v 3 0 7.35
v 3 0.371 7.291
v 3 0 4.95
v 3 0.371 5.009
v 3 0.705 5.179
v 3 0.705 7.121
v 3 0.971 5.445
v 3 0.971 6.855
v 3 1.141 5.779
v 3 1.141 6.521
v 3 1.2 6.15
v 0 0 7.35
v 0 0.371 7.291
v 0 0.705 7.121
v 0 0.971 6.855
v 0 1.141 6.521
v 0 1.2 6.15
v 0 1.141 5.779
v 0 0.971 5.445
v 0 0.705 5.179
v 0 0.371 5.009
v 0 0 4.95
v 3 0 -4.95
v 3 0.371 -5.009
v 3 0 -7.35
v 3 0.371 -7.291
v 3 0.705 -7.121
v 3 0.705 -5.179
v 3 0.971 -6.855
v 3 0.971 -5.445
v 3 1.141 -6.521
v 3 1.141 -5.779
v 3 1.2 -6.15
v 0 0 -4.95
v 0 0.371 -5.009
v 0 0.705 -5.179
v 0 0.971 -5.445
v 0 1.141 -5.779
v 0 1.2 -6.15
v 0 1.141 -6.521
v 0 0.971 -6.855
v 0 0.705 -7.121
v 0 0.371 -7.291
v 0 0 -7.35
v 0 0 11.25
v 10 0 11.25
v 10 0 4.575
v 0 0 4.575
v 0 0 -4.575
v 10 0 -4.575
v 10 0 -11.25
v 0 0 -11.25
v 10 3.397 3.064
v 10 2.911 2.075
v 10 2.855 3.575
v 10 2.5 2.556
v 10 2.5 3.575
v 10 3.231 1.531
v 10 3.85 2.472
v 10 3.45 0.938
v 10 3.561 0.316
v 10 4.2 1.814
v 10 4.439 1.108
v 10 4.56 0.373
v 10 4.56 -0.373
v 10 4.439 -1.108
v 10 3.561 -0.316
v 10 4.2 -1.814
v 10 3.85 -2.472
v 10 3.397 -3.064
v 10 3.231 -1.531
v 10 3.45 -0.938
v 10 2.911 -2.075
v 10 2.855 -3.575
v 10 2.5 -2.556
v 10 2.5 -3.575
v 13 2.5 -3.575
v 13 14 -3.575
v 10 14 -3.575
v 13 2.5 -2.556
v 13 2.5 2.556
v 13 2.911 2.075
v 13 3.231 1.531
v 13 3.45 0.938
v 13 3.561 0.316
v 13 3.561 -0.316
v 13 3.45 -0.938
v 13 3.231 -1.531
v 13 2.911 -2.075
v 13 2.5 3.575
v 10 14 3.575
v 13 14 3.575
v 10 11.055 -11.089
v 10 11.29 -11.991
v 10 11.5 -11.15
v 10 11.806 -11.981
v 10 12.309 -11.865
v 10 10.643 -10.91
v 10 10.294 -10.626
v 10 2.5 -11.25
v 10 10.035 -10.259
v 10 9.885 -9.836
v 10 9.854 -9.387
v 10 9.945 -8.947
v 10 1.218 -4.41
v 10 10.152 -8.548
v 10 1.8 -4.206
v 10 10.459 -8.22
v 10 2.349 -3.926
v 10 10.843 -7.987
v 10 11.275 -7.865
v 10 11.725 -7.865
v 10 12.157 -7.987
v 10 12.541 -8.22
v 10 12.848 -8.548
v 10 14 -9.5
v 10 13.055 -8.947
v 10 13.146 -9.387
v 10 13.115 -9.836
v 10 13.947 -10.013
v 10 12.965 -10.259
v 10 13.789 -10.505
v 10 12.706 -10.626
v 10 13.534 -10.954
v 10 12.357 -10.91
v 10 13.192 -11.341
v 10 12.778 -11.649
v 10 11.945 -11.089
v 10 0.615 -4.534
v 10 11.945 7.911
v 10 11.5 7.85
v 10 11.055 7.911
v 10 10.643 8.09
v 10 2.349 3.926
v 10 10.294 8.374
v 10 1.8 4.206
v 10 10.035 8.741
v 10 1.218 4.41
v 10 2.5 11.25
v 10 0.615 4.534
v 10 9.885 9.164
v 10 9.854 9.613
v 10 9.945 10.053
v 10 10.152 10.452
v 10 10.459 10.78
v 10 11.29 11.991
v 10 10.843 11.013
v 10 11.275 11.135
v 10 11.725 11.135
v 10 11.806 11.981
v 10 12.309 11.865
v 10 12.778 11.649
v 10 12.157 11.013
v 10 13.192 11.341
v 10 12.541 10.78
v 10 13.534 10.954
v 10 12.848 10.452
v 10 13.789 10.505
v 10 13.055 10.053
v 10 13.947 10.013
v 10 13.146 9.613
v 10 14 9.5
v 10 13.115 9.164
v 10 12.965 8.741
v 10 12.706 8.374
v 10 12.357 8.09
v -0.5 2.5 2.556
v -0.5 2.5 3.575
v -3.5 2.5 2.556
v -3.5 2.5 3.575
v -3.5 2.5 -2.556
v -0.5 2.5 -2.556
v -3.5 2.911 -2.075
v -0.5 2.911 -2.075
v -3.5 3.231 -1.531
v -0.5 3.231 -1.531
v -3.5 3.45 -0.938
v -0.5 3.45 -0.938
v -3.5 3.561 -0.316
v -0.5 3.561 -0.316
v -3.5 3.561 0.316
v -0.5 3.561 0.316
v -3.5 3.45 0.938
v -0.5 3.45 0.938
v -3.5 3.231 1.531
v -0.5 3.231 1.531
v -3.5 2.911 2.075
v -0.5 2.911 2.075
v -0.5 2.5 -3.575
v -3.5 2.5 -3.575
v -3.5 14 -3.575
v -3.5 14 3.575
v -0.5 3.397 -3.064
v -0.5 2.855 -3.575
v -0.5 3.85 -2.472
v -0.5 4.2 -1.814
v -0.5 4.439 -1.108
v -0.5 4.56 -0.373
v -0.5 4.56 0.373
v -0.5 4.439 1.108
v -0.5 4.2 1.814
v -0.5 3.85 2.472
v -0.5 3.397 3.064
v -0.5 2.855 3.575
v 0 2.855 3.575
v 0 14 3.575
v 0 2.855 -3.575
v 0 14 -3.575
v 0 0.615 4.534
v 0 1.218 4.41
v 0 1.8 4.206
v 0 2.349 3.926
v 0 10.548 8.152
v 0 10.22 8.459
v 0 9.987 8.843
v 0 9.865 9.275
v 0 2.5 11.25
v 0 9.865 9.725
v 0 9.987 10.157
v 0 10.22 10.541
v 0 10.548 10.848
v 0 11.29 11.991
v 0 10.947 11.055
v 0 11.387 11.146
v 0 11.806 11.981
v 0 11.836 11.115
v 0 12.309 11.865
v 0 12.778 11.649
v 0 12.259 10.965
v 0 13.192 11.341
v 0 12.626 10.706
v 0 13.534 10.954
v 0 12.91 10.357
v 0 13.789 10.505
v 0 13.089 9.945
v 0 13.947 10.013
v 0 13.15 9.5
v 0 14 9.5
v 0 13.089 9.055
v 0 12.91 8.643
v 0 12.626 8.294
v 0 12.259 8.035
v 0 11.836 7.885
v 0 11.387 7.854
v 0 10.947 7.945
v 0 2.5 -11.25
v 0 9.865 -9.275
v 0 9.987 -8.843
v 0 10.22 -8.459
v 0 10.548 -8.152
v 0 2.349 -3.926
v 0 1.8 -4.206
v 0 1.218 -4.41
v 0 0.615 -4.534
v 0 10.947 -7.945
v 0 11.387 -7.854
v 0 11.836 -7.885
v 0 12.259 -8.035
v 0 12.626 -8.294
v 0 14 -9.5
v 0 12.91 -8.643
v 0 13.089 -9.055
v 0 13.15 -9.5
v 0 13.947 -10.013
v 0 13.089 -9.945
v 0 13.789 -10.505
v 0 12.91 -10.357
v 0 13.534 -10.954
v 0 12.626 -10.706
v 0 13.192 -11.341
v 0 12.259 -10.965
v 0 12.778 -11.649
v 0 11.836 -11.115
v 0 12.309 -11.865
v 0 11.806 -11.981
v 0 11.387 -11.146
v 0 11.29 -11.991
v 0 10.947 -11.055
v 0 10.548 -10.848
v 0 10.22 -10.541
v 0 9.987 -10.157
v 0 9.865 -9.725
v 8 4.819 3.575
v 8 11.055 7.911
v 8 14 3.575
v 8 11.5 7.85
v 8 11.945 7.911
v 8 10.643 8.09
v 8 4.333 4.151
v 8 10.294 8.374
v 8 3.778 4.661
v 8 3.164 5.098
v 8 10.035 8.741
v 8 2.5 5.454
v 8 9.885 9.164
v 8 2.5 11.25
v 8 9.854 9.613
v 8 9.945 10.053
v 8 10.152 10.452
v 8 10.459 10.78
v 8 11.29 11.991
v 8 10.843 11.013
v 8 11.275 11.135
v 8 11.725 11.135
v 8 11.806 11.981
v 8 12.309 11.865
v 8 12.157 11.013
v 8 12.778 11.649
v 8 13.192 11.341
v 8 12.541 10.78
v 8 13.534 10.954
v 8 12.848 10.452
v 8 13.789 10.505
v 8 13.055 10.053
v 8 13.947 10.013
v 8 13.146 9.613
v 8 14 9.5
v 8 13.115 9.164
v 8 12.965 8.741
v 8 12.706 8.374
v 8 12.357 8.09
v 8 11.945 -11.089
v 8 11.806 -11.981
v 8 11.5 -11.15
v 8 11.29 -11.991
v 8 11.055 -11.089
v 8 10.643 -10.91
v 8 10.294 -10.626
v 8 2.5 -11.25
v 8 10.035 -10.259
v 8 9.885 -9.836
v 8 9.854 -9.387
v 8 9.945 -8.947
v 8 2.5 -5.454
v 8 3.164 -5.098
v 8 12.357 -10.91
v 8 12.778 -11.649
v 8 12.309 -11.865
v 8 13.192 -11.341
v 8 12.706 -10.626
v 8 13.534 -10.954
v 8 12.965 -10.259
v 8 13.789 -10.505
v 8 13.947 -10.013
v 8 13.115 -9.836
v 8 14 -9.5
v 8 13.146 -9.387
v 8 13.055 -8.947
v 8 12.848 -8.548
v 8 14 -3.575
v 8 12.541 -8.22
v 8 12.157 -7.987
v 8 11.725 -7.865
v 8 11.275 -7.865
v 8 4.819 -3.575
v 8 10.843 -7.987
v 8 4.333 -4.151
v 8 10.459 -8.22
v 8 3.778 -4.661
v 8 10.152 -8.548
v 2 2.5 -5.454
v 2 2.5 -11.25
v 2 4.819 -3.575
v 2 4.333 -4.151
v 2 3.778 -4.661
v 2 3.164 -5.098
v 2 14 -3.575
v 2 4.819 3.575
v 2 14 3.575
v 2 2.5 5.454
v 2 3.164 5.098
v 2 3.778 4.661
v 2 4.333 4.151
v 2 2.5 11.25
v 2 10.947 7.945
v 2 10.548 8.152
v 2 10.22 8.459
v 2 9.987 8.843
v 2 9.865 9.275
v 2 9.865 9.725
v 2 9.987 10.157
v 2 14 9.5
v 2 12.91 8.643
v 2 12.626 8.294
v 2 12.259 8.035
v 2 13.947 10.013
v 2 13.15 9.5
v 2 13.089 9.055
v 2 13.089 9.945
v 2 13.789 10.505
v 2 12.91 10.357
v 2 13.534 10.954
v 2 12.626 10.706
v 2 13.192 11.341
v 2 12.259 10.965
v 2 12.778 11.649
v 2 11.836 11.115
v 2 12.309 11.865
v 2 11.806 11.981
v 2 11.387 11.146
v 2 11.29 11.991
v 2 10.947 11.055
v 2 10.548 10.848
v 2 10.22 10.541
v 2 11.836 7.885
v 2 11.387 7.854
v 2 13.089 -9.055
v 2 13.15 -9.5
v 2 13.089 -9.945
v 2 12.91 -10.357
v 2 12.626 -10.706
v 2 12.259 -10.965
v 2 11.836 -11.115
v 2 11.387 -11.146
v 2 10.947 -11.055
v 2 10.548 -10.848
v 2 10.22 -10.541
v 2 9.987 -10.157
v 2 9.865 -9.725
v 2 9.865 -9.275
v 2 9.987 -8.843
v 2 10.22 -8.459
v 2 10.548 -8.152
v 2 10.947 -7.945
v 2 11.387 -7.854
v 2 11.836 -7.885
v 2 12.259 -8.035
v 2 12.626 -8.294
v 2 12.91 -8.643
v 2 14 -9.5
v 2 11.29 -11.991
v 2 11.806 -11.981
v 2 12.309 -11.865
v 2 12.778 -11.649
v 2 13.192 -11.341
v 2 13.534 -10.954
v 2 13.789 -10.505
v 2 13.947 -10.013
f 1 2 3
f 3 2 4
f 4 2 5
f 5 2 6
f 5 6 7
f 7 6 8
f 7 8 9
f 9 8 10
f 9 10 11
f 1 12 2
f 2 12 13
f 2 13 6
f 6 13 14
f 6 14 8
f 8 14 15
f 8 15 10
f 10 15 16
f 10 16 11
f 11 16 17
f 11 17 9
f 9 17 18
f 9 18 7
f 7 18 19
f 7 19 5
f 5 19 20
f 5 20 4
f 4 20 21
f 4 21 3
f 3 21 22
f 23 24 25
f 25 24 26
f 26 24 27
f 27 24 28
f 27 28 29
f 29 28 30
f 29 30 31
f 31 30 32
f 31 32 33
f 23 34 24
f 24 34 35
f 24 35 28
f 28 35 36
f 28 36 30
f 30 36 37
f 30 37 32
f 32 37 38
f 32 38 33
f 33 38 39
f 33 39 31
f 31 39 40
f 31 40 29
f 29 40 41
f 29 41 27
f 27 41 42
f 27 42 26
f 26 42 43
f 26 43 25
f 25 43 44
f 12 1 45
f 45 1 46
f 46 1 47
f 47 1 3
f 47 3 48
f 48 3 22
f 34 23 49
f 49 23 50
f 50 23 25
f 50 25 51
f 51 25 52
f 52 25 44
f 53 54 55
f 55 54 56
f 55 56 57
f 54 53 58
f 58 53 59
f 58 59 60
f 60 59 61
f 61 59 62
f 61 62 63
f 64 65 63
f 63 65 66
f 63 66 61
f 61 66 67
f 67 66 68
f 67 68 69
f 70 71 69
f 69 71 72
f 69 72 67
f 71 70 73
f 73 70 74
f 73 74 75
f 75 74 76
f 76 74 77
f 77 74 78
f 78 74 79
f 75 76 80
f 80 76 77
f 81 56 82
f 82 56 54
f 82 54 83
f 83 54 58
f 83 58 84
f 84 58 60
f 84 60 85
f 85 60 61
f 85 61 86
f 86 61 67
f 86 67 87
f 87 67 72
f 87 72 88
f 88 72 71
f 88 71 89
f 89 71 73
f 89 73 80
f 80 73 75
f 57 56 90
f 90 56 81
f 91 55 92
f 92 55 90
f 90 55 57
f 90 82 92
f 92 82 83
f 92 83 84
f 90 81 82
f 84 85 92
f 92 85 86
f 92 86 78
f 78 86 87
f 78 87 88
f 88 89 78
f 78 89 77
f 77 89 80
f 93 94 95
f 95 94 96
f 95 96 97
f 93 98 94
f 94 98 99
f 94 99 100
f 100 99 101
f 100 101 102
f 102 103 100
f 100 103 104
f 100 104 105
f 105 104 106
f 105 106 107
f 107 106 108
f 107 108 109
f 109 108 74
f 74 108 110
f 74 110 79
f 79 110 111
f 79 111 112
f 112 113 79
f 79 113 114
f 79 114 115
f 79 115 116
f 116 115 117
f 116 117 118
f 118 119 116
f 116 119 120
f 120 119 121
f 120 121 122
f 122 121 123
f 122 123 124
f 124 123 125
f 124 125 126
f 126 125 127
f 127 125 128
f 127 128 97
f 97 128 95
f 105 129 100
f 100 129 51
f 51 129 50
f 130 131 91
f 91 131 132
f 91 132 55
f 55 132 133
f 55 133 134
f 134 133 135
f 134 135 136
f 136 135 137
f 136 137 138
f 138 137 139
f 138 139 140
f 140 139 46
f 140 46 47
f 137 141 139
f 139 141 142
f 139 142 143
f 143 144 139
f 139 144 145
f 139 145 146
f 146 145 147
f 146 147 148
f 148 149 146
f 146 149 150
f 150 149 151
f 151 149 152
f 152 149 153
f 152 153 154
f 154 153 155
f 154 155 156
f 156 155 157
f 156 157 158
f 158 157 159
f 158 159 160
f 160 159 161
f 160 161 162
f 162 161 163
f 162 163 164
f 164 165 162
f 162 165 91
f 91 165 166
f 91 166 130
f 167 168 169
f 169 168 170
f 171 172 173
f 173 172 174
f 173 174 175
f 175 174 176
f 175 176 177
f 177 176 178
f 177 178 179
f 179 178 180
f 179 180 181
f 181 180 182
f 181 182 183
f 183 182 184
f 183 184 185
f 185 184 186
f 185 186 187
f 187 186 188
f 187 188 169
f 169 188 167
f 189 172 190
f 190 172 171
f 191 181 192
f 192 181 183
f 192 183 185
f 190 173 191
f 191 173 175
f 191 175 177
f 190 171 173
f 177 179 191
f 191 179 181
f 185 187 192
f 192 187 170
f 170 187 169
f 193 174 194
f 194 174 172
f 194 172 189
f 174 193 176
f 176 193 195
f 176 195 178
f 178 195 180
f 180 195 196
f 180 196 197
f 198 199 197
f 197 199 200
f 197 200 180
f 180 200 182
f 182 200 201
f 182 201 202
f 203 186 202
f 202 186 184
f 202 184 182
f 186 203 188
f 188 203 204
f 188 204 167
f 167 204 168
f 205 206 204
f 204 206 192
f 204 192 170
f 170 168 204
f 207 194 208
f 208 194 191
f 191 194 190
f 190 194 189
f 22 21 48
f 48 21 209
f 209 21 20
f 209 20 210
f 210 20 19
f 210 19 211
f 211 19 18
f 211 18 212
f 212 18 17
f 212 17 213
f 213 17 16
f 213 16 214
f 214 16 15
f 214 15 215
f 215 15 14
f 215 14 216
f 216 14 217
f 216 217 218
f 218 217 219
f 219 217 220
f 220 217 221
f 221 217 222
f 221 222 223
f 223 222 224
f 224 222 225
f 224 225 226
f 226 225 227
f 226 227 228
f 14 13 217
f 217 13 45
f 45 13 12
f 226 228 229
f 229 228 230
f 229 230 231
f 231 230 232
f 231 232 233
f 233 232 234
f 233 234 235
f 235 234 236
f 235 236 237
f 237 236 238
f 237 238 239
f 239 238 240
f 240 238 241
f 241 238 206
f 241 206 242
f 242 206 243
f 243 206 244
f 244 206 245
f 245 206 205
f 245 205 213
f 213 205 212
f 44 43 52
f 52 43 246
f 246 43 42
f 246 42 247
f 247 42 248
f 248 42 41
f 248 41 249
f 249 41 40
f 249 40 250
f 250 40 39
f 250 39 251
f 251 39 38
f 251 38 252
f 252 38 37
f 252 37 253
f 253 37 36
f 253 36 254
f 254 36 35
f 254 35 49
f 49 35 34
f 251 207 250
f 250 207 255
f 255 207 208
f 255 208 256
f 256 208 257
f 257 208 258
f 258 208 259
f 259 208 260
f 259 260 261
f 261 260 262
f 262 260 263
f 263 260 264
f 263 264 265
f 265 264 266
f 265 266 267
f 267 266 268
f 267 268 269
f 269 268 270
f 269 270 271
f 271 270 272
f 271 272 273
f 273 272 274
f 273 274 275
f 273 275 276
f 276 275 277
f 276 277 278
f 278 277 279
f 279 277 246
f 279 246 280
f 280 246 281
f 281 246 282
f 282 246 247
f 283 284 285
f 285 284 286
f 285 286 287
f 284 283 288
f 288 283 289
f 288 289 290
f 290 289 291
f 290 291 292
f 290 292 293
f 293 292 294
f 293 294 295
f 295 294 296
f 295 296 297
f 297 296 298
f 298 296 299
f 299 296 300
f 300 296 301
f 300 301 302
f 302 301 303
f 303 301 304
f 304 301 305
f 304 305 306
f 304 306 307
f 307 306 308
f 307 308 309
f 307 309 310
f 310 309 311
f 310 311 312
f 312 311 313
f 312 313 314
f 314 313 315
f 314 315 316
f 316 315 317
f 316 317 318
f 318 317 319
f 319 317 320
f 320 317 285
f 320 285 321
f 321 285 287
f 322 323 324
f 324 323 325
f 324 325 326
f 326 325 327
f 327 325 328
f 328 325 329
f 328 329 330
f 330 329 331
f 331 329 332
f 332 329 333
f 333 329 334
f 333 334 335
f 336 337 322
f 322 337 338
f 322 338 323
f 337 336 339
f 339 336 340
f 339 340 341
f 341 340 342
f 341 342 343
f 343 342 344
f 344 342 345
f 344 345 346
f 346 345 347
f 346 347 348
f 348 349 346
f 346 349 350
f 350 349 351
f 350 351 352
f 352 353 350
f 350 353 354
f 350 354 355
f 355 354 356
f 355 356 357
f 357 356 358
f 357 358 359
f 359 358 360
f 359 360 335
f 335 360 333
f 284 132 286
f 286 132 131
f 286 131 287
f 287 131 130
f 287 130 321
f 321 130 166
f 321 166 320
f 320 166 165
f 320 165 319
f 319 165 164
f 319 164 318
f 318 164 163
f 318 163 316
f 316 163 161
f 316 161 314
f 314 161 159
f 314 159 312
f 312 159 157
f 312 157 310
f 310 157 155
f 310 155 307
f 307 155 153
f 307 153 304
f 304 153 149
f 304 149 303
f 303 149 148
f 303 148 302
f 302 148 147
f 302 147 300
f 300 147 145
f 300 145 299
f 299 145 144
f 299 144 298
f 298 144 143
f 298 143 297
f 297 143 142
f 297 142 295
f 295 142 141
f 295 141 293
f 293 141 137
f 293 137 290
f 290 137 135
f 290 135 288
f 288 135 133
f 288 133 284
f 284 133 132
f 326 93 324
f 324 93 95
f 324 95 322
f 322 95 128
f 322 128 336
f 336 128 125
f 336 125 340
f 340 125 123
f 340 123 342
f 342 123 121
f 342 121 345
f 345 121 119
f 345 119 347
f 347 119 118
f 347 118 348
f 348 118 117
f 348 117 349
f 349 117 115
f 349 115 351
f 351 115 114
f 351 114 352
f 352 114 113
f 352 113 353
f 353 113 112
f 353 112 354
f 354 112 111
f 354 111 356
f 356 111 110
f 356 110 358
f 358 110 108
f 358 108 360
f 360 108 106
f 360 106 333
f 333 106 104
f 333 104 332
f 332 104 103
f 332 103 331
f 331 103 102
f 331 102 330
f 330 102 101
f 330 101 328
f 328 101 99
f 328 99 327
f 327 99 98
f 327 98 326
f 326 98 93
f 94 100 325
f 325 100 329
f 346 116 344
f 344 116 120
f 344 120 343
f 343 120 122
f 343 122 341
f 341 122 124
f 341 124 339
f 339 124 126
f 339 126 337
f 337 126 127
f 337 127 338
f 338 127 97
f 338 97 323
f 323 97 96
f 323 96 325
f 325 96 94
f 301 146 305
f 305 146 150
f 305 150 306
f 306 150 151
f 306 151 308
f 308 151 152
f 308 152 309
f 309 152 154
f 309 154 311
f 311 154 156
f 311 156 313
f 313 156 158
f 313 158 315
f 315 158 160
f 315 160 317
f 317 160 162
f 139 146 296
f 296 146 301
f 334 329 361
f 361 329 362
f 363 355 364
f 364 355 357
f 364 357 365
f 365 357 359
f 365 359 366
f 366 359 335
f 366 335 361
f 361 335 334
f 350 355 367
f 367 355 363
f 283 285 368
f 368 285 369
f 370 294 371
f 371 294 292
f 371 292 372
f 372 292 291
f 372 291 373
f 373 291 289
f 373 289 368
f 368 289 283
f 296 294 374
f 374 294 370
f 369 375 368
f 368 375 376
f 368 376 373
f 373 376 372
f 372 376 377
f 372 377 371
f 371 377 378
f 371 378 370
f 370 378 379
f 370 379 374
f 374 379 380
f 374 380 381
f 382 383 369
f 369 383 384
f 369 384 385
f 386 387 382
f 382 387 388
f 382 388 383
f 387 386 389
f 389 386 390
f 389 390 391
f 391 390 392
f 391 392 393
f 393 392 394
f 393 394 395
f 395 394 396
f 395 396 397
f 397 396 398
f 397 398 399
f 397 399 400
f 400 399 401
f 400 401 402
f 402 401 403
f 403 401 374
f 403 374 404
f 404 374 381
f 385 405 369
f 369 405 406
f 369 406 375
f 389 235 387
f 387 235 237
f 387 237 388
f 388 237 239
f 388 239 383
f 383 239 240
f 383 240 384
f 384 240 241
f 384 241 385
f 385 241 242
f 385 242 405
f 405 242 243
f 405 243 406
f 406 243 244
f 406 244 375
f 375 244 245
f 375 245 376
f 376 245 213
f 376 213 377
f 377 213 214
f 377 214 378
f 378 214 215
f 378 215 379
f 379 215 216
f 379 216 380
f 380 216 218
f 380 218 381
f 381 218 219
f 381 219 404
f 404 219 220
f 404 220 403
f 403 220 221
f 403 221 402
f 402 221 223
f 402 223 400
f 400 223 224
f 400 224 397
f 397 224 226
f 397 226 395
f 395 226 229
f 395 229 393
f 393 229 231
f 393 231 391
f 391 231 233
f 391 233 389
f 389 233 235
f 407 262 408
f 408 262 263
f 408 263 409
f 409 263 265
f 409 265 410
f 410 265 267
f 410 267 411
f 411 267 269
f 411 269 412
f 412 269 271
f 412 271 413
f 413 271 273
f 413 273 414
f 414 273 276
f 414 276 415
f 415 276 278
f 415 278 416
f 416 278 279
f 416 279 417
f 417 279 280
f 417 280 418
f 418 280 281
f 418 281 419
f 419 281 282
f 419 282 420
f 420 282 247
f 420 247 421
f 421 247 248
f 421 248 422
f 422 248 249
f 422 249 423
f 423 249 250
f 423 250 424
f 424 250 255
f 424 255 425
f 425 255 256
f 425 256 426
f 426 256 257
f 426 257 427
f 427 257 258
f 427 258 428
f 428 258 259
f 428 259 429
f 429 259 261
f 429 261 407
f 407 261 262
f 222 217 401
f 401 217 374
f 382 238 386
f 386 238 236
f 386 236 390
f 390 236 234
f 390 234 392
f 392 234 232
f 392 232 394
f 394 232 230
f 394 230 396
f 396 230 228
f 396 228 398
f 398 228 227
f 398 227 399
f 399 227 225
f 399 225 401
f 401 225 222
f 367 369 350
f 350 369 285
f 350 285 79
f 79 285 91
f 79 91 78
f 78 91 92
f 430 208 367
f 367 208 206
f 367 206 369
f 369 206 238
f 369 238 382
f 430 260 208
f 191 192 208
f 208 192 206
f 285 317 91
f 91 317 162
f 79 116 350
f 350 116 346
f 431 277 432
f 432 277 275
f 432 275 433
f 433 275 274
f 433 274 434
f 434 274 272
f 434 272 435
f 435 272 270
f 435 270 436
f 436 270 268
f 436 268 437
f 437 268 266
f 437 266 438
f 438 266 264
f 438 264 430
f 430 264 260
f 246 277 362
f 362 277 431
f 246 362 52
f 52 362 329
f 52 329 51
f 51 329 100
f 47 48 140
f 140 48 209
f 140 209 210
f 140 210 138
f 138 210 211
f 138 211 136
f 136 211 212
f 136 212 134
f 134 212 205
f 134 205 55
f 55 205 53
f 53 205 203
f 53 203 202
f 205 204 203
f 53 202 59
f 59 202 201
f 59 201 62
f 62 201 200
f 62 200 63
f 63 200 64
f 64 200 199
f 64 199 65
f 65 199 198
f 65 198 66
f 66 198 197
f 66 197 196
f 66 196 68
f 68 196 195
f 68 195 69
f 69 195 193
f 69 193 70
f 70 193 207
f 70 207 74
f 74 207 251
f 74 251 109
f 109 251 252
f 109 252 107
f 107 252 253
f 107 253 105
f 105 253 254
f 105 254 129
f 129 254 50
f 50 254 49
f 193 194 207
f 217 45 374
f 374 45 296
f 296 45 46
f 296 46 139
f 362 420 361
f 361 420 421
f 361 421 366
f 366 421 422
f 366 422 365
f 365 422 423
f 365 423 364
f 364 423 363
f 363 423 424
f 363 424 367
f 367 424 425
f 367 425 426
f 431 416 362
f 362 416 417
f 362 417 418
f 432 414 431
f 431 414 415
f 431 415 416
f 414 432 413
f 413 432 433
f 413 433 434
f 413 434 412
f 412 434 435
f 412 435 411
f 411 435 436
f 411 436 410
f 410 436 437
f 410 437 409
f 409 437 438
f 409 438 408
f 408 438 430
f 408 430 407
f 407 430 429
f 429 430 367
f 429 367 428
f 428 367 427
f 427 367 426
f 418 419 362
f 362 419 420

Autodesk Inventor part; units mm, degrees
ref_plane "YZ Plane" through (0, 0, 0) normal (1, 0, 0) x (0, 1, 0)
ref_plane "XZ Plane" through (0, 0, 0) normal (0, 1, 0) x (-1, 0, 0)
ref_plane "XY Plane" through (0, 0, 0) normal (0, 0, 1) x (1, 0, 0)
sketch "スケッチ1" plane through (0, 0, 0) normal (1, 0, 0) x (0, 1, 0)
  circle A0 centre (0, 0) radius 4.575
  circle A1 centre (0, 0) radius 3.575
  line L0 (0, 0) -> (0, 6)
  line L1 (0, 6) -> (0, -6)
  line L2 (0, 0) -> (11.5, 0)
  line L3 (11.5, 0) -> (11.5, 9.5)
  line L4 (11.5, 9.5) -> (11.5, -9.5)
  circle A2 centre (11.5, 9.5) radius 1.65
  circle A3 centre (11.5, -9.5) radius 1.65
  line L5 (0, 0) -> (0, 11.25)
  line L6 (0, 11.25) -> (0, -11.25)
  line L7 (-2.5, -11.25) -> (2.5, -11.25)
  line L8 (2.5, -11.25) -> (2.5, 11.25)
  line L9 (2.5, 11.25) -> (-2.5, 11.25)
  line L10 (-2.5, 11.25) -> (-2.5, -11.25)
  line L11 (-2.5, -11.25) -> (2.5, 11.25) construction
  line L12 (2.5, -11.25) -> (-2.5, 11.25) construction
  circle A4 centre (11.5, 9.5) radius 2.5
  circle A5 centre (11.5, -9.5) radius 2.5
  line L13 (2.5, 11.25) -> (11.2899, 11.9912)
  line L14 (2.5, -11.25) -> (11.2899, -11.9912)
  line L15 (14, 9.5) -> (14, -9.5)
  line L16 (0, -3.575) -> (14, -3.575)
  line L17 (0, 3.575) -> (14, 3.575)
  circle A6 centre (0, 0) radius 6
  line L18 (0, 0) -> (0, 6.15)
  line L19 (0, 6.15) -> (0, -6.15)
  circle A7 centre (0, 6.15) radius 1.25
  circle A8 centre (0, -6.15) radius 1.25
  point P0 (0, 4.575)
  point P1 (0, -4.575)
  point P2 (2.5, 3.575)
  point P3 (2.5, 2.5555)
  point P4 (2.5, -2.5555)
  point P5 (2.5, -3.575)
  point P6 (0, 7.4)
  point P7 (0, 4.9)
  point P8 (0, -4.9)
  point P9 (0, -7.4)
  point P10 (2.5, 5.4544)
  point P11 (2.5, -5.4544)
  point P12 (4.8186, 3.575)
  point P13 (4.8186, -3.575)
  point P14 (2.8548, 3.575)
  point P15 (2.8548, -3.575)
  dimension "d0" = 9.15
  dimension "d1" = 7.15
  dimension "d2" = 6
  dimension "d3" = 12
  dimension "d6" = 11.5
  dimension "d7" = 9.5
  dimension "d8" = 19
  dimension "d9" = 3.3
  dimension "d10" = 3.3
  dimension "d11" = 11.25
  dimension "d12" = 22.5
  dimension "d13" = 5
  dimension "d14" = 5
  dimension "d15" = 5
  dimension "d28" = 12
  dimension "d29" = 6.15
  dimension "d30" = 12.3
  dimension "d31" = 2.5
  dimension "d32" = 2.5
extrude "押し出し7" add sketch "スケッチ1" along normal blind 2 contours L2 A6 L16 A0 | A0 L17 A6 L2 | A0 L8 A6 L17 | L16 A6 L8 A0 | A6 L17 L3 L2 | L2 L4 L16 A6 | A0 L0 A7 A6 L8 | A6 L8 L13 A4 L3 L17 | L8 A6 A8 L1 A0 | L16 L4 A5 L14 L8 A6 | L3 L17 L15 L16 L4 | A6 A7 L5 L9 L8 | L3 A4 L15 L17 | L8 L7 L6 A8 A6 | L16 L15 A5 L4 | A4 | A5
extrude "押し出し8" add sketch "スケッチ1" along normal blind 10 contours L2 A6 L16 A0 | A0 L17 A6 L2 | A0 L8 A6 L17 | L16 A6 L8 A0 | A6 L17 L3 L2 | L2 L4 L16 A6 | A0 L0 A7 A6 L8 | L8 A6 A8 L1 A0 | L3 L17 L15 L16 L4 | A6 A7 L5 L9 L8 | L8 L7 L6 A8 A6 | L0 A6 A7 | A6 L5 A7 | A8 A6 L1 | A8 L6 A6 picked at (0.2292, 5.6392) picked at (0.3961, 6.4211) picked at (0.2292, -5.6392) picked at (0.3961, -6.4211)
sketch "スケッチ6" plane through (10, 0, 0) normal (1, 0, 0) x (0, 0, -1)
  line L0 (0, 0) -> (-6.15, 0)
  line L1 (-6.15, 0) -> (6.15, 0)
  circle A0 centre (-6.15, 0) radius 1.25
  circle A1 centre (6.15, 0) radius 1.25
  line L2 (-11.25, 2.5) -> (11.25, 2.5)
  line L3 (11.25, 2.5) -> (11.25, -2.5)
  line L4 (11.25, -2.5) -> (-11.25, -2.5)
  line L5 (-11.25, -2.5) -> (-11.25, 2.5)
  line L6 (-11.25, 2.5) -> (11.25, -2.5) construction
  line L7 (11.25, 2.5) -> (-11.25, -2.5) construction
  line L8 (0, 0) -> (0, 11.5)
  line L9 (0, 11.5) -> (-9.5, 11.5)
  line L10 (-9.5, 11.5) -> (9.5, 11.5)
  circle A2 centre (-9.5, 11.5) radius 1.65
  circle A3 centre (-9.5, 11.5) radius 2.5
  circle A4 centre (9.5, 11.5) radius 1.65
  circle A5 centre (9.5, 11.5) radius 2.5
  circle A6 centre (0, 0) radius 6
  circle A7 centre (0, 0) radius 4.575
  arc A8 (11.9912, 11.2899) -> (9.5, 14) centre (9.5, 11.5) ccw projected
  line L11 (11.25, 2.5) -> (11.9912, 11.2899)
  line L12 (-11.9912, 11.2899) -> (-11.25, 2.5) projected
  line L13 (-11.25, 2.5) -> (-11.9912, 11.2899)
  line L14 (9.5, 14) -> (-9.5, 14) projected
  arc A9 (-9.5, 14) -> (-11.9912, 11.2899) centre (-9.5, 11.5) ccw projected
  line L15 (-9.5, 14) -> (9.5, 14)
  circle A10 centre (0, 0) radius 3.575
  line L16 (-3.575, 14) -> (-3.575, 4.8186) projected
  line L17 (3.575, -14) -> (-3.575, -14)
  line L18 (-3.575, -14) -> (-3.575, 14)
  line L19 (-3.575, 14) -> (3.575, 14)
  line L20 (3.575, 14) -> (3.575, -14)
  line L21 (3.575, -14) -> (-3.575, 14) construction
  line L22 (-3.575, -14) -> (3.575, 14) construction
  point P0 (-5.4544, 2.5)
  point P1 (5.4544, 2.5)
  point P2 (7, 11.5)
  point P3 (-7, 11.5)
  point P4 (-3.575, 11.5)
  point P5 (-3.575, 4.8186)
  point P6 (-3.575, 2.5)
  point P7 (-2.5555, 2.5)
  point P8 (2.5555, 2.5)
  point P9 (3.575, 2.5)
  point P10 (3.575, 11.5)
  dimension "d69" = 12
  dimension "d56" = 6.15
  dimension "d57" = 12.3
  dimension "d58" = 2.5
  dimension "d59" = 2.5
  dimension "d62" = 11.5
  dimension "d63" = 9.5
  dimension "d64" = 19
  dimension "d65" = 3.3
  dimension "d66" = 5
  dimension "d67" = 3.3
  dimension "d68" = 5
  dimension "d70" = 9.15
  dimension "d79" = 7.15
extrude "押し出し9" add sketch "スケッチ6" against normal blind 2 contours L2 L12 A3 L9 L16 A6 | L16 L9 L8 A6 | A6 L20 L10 A5 L11 L2 | A6 L8 L10 L20 | L16 L14 L20 L10 L9 | L9 A3 L14 L16 | L20 L14 A5 L10 | A3 | A5
extrude "押し出し10" add sketch "スケッチ1" against normal blind 0.5 contours L2 A6 L16 A0 | A0 L17 A6 L2 | A6 L17 L3 L2 | L2 L4 L16 A6 | L3 L17 L15 L16 L4
sketch "スケッチ7" plane through (-0.5, 0, 0) normal (-1, 0, 0) x (0, 0, 1)
  circle A0 centre (0, 0) radius 3.575
  line L0 (-9.5, 14) -> (9.5, 14) projected
  line L1 (-3.575, 14) -> (3.575, 14)
  circle A1 centre (0, 0) radius 4.575
  line L2 (-11.25, 0) -> (-11.25, 2.5) projected
  line L3 (11.25, -2.5) -> (-11.25, -2.5)
  line L4 (-11.25, -2.5) -> (-11.25, 2.5)
  line L5 (-11.25, 2.5) -> (11.25, 2.5)
  line L6 (11.25, 2.5) -> (11.25, -2.5)
  line L7 (11.25, -2.5) -> (-11.25, 2.5) construction
  line L8 (-11.25, -2.5) -> (11.25, 2.5) construction
  line L9 (-3.575, 14) -> (-3.575, 0)
  line L10 (3.575, 14) -> (3.575, 0)
  point P0 (-3.575, 2.5)
  point P1 (-2.5555, 2.5)
  point P2 (2.5555, 2.5)
  point P3 (3.575, 2.5)
  dimension "d75" = 7.15
  dimension "d76" = 5
extrude "押し出し11" add sketch "スケッチ7" along normal blind 3 contours A0 L5 L9 A1 L10 | A1 L9 L0 L10
extrude "押し出し12" add sketch "スケッチ6" along normal blind 3 contours L2 L18 A7 L8 A10 | A10 L8 A7 L20 L2 | L18 A6 L8 A7 | A7 L8 A6 L20 | L16 L9 L8 A6 | A6 L8 L10 L20 | L16 L14 L20 L10 L9
hole "穴1" at (0, 0, -6.15) at (0, 0, 6.15) direction (1, 0, 0) diameter 2.4 depth 3
properties part number "ikafly5.0c"
